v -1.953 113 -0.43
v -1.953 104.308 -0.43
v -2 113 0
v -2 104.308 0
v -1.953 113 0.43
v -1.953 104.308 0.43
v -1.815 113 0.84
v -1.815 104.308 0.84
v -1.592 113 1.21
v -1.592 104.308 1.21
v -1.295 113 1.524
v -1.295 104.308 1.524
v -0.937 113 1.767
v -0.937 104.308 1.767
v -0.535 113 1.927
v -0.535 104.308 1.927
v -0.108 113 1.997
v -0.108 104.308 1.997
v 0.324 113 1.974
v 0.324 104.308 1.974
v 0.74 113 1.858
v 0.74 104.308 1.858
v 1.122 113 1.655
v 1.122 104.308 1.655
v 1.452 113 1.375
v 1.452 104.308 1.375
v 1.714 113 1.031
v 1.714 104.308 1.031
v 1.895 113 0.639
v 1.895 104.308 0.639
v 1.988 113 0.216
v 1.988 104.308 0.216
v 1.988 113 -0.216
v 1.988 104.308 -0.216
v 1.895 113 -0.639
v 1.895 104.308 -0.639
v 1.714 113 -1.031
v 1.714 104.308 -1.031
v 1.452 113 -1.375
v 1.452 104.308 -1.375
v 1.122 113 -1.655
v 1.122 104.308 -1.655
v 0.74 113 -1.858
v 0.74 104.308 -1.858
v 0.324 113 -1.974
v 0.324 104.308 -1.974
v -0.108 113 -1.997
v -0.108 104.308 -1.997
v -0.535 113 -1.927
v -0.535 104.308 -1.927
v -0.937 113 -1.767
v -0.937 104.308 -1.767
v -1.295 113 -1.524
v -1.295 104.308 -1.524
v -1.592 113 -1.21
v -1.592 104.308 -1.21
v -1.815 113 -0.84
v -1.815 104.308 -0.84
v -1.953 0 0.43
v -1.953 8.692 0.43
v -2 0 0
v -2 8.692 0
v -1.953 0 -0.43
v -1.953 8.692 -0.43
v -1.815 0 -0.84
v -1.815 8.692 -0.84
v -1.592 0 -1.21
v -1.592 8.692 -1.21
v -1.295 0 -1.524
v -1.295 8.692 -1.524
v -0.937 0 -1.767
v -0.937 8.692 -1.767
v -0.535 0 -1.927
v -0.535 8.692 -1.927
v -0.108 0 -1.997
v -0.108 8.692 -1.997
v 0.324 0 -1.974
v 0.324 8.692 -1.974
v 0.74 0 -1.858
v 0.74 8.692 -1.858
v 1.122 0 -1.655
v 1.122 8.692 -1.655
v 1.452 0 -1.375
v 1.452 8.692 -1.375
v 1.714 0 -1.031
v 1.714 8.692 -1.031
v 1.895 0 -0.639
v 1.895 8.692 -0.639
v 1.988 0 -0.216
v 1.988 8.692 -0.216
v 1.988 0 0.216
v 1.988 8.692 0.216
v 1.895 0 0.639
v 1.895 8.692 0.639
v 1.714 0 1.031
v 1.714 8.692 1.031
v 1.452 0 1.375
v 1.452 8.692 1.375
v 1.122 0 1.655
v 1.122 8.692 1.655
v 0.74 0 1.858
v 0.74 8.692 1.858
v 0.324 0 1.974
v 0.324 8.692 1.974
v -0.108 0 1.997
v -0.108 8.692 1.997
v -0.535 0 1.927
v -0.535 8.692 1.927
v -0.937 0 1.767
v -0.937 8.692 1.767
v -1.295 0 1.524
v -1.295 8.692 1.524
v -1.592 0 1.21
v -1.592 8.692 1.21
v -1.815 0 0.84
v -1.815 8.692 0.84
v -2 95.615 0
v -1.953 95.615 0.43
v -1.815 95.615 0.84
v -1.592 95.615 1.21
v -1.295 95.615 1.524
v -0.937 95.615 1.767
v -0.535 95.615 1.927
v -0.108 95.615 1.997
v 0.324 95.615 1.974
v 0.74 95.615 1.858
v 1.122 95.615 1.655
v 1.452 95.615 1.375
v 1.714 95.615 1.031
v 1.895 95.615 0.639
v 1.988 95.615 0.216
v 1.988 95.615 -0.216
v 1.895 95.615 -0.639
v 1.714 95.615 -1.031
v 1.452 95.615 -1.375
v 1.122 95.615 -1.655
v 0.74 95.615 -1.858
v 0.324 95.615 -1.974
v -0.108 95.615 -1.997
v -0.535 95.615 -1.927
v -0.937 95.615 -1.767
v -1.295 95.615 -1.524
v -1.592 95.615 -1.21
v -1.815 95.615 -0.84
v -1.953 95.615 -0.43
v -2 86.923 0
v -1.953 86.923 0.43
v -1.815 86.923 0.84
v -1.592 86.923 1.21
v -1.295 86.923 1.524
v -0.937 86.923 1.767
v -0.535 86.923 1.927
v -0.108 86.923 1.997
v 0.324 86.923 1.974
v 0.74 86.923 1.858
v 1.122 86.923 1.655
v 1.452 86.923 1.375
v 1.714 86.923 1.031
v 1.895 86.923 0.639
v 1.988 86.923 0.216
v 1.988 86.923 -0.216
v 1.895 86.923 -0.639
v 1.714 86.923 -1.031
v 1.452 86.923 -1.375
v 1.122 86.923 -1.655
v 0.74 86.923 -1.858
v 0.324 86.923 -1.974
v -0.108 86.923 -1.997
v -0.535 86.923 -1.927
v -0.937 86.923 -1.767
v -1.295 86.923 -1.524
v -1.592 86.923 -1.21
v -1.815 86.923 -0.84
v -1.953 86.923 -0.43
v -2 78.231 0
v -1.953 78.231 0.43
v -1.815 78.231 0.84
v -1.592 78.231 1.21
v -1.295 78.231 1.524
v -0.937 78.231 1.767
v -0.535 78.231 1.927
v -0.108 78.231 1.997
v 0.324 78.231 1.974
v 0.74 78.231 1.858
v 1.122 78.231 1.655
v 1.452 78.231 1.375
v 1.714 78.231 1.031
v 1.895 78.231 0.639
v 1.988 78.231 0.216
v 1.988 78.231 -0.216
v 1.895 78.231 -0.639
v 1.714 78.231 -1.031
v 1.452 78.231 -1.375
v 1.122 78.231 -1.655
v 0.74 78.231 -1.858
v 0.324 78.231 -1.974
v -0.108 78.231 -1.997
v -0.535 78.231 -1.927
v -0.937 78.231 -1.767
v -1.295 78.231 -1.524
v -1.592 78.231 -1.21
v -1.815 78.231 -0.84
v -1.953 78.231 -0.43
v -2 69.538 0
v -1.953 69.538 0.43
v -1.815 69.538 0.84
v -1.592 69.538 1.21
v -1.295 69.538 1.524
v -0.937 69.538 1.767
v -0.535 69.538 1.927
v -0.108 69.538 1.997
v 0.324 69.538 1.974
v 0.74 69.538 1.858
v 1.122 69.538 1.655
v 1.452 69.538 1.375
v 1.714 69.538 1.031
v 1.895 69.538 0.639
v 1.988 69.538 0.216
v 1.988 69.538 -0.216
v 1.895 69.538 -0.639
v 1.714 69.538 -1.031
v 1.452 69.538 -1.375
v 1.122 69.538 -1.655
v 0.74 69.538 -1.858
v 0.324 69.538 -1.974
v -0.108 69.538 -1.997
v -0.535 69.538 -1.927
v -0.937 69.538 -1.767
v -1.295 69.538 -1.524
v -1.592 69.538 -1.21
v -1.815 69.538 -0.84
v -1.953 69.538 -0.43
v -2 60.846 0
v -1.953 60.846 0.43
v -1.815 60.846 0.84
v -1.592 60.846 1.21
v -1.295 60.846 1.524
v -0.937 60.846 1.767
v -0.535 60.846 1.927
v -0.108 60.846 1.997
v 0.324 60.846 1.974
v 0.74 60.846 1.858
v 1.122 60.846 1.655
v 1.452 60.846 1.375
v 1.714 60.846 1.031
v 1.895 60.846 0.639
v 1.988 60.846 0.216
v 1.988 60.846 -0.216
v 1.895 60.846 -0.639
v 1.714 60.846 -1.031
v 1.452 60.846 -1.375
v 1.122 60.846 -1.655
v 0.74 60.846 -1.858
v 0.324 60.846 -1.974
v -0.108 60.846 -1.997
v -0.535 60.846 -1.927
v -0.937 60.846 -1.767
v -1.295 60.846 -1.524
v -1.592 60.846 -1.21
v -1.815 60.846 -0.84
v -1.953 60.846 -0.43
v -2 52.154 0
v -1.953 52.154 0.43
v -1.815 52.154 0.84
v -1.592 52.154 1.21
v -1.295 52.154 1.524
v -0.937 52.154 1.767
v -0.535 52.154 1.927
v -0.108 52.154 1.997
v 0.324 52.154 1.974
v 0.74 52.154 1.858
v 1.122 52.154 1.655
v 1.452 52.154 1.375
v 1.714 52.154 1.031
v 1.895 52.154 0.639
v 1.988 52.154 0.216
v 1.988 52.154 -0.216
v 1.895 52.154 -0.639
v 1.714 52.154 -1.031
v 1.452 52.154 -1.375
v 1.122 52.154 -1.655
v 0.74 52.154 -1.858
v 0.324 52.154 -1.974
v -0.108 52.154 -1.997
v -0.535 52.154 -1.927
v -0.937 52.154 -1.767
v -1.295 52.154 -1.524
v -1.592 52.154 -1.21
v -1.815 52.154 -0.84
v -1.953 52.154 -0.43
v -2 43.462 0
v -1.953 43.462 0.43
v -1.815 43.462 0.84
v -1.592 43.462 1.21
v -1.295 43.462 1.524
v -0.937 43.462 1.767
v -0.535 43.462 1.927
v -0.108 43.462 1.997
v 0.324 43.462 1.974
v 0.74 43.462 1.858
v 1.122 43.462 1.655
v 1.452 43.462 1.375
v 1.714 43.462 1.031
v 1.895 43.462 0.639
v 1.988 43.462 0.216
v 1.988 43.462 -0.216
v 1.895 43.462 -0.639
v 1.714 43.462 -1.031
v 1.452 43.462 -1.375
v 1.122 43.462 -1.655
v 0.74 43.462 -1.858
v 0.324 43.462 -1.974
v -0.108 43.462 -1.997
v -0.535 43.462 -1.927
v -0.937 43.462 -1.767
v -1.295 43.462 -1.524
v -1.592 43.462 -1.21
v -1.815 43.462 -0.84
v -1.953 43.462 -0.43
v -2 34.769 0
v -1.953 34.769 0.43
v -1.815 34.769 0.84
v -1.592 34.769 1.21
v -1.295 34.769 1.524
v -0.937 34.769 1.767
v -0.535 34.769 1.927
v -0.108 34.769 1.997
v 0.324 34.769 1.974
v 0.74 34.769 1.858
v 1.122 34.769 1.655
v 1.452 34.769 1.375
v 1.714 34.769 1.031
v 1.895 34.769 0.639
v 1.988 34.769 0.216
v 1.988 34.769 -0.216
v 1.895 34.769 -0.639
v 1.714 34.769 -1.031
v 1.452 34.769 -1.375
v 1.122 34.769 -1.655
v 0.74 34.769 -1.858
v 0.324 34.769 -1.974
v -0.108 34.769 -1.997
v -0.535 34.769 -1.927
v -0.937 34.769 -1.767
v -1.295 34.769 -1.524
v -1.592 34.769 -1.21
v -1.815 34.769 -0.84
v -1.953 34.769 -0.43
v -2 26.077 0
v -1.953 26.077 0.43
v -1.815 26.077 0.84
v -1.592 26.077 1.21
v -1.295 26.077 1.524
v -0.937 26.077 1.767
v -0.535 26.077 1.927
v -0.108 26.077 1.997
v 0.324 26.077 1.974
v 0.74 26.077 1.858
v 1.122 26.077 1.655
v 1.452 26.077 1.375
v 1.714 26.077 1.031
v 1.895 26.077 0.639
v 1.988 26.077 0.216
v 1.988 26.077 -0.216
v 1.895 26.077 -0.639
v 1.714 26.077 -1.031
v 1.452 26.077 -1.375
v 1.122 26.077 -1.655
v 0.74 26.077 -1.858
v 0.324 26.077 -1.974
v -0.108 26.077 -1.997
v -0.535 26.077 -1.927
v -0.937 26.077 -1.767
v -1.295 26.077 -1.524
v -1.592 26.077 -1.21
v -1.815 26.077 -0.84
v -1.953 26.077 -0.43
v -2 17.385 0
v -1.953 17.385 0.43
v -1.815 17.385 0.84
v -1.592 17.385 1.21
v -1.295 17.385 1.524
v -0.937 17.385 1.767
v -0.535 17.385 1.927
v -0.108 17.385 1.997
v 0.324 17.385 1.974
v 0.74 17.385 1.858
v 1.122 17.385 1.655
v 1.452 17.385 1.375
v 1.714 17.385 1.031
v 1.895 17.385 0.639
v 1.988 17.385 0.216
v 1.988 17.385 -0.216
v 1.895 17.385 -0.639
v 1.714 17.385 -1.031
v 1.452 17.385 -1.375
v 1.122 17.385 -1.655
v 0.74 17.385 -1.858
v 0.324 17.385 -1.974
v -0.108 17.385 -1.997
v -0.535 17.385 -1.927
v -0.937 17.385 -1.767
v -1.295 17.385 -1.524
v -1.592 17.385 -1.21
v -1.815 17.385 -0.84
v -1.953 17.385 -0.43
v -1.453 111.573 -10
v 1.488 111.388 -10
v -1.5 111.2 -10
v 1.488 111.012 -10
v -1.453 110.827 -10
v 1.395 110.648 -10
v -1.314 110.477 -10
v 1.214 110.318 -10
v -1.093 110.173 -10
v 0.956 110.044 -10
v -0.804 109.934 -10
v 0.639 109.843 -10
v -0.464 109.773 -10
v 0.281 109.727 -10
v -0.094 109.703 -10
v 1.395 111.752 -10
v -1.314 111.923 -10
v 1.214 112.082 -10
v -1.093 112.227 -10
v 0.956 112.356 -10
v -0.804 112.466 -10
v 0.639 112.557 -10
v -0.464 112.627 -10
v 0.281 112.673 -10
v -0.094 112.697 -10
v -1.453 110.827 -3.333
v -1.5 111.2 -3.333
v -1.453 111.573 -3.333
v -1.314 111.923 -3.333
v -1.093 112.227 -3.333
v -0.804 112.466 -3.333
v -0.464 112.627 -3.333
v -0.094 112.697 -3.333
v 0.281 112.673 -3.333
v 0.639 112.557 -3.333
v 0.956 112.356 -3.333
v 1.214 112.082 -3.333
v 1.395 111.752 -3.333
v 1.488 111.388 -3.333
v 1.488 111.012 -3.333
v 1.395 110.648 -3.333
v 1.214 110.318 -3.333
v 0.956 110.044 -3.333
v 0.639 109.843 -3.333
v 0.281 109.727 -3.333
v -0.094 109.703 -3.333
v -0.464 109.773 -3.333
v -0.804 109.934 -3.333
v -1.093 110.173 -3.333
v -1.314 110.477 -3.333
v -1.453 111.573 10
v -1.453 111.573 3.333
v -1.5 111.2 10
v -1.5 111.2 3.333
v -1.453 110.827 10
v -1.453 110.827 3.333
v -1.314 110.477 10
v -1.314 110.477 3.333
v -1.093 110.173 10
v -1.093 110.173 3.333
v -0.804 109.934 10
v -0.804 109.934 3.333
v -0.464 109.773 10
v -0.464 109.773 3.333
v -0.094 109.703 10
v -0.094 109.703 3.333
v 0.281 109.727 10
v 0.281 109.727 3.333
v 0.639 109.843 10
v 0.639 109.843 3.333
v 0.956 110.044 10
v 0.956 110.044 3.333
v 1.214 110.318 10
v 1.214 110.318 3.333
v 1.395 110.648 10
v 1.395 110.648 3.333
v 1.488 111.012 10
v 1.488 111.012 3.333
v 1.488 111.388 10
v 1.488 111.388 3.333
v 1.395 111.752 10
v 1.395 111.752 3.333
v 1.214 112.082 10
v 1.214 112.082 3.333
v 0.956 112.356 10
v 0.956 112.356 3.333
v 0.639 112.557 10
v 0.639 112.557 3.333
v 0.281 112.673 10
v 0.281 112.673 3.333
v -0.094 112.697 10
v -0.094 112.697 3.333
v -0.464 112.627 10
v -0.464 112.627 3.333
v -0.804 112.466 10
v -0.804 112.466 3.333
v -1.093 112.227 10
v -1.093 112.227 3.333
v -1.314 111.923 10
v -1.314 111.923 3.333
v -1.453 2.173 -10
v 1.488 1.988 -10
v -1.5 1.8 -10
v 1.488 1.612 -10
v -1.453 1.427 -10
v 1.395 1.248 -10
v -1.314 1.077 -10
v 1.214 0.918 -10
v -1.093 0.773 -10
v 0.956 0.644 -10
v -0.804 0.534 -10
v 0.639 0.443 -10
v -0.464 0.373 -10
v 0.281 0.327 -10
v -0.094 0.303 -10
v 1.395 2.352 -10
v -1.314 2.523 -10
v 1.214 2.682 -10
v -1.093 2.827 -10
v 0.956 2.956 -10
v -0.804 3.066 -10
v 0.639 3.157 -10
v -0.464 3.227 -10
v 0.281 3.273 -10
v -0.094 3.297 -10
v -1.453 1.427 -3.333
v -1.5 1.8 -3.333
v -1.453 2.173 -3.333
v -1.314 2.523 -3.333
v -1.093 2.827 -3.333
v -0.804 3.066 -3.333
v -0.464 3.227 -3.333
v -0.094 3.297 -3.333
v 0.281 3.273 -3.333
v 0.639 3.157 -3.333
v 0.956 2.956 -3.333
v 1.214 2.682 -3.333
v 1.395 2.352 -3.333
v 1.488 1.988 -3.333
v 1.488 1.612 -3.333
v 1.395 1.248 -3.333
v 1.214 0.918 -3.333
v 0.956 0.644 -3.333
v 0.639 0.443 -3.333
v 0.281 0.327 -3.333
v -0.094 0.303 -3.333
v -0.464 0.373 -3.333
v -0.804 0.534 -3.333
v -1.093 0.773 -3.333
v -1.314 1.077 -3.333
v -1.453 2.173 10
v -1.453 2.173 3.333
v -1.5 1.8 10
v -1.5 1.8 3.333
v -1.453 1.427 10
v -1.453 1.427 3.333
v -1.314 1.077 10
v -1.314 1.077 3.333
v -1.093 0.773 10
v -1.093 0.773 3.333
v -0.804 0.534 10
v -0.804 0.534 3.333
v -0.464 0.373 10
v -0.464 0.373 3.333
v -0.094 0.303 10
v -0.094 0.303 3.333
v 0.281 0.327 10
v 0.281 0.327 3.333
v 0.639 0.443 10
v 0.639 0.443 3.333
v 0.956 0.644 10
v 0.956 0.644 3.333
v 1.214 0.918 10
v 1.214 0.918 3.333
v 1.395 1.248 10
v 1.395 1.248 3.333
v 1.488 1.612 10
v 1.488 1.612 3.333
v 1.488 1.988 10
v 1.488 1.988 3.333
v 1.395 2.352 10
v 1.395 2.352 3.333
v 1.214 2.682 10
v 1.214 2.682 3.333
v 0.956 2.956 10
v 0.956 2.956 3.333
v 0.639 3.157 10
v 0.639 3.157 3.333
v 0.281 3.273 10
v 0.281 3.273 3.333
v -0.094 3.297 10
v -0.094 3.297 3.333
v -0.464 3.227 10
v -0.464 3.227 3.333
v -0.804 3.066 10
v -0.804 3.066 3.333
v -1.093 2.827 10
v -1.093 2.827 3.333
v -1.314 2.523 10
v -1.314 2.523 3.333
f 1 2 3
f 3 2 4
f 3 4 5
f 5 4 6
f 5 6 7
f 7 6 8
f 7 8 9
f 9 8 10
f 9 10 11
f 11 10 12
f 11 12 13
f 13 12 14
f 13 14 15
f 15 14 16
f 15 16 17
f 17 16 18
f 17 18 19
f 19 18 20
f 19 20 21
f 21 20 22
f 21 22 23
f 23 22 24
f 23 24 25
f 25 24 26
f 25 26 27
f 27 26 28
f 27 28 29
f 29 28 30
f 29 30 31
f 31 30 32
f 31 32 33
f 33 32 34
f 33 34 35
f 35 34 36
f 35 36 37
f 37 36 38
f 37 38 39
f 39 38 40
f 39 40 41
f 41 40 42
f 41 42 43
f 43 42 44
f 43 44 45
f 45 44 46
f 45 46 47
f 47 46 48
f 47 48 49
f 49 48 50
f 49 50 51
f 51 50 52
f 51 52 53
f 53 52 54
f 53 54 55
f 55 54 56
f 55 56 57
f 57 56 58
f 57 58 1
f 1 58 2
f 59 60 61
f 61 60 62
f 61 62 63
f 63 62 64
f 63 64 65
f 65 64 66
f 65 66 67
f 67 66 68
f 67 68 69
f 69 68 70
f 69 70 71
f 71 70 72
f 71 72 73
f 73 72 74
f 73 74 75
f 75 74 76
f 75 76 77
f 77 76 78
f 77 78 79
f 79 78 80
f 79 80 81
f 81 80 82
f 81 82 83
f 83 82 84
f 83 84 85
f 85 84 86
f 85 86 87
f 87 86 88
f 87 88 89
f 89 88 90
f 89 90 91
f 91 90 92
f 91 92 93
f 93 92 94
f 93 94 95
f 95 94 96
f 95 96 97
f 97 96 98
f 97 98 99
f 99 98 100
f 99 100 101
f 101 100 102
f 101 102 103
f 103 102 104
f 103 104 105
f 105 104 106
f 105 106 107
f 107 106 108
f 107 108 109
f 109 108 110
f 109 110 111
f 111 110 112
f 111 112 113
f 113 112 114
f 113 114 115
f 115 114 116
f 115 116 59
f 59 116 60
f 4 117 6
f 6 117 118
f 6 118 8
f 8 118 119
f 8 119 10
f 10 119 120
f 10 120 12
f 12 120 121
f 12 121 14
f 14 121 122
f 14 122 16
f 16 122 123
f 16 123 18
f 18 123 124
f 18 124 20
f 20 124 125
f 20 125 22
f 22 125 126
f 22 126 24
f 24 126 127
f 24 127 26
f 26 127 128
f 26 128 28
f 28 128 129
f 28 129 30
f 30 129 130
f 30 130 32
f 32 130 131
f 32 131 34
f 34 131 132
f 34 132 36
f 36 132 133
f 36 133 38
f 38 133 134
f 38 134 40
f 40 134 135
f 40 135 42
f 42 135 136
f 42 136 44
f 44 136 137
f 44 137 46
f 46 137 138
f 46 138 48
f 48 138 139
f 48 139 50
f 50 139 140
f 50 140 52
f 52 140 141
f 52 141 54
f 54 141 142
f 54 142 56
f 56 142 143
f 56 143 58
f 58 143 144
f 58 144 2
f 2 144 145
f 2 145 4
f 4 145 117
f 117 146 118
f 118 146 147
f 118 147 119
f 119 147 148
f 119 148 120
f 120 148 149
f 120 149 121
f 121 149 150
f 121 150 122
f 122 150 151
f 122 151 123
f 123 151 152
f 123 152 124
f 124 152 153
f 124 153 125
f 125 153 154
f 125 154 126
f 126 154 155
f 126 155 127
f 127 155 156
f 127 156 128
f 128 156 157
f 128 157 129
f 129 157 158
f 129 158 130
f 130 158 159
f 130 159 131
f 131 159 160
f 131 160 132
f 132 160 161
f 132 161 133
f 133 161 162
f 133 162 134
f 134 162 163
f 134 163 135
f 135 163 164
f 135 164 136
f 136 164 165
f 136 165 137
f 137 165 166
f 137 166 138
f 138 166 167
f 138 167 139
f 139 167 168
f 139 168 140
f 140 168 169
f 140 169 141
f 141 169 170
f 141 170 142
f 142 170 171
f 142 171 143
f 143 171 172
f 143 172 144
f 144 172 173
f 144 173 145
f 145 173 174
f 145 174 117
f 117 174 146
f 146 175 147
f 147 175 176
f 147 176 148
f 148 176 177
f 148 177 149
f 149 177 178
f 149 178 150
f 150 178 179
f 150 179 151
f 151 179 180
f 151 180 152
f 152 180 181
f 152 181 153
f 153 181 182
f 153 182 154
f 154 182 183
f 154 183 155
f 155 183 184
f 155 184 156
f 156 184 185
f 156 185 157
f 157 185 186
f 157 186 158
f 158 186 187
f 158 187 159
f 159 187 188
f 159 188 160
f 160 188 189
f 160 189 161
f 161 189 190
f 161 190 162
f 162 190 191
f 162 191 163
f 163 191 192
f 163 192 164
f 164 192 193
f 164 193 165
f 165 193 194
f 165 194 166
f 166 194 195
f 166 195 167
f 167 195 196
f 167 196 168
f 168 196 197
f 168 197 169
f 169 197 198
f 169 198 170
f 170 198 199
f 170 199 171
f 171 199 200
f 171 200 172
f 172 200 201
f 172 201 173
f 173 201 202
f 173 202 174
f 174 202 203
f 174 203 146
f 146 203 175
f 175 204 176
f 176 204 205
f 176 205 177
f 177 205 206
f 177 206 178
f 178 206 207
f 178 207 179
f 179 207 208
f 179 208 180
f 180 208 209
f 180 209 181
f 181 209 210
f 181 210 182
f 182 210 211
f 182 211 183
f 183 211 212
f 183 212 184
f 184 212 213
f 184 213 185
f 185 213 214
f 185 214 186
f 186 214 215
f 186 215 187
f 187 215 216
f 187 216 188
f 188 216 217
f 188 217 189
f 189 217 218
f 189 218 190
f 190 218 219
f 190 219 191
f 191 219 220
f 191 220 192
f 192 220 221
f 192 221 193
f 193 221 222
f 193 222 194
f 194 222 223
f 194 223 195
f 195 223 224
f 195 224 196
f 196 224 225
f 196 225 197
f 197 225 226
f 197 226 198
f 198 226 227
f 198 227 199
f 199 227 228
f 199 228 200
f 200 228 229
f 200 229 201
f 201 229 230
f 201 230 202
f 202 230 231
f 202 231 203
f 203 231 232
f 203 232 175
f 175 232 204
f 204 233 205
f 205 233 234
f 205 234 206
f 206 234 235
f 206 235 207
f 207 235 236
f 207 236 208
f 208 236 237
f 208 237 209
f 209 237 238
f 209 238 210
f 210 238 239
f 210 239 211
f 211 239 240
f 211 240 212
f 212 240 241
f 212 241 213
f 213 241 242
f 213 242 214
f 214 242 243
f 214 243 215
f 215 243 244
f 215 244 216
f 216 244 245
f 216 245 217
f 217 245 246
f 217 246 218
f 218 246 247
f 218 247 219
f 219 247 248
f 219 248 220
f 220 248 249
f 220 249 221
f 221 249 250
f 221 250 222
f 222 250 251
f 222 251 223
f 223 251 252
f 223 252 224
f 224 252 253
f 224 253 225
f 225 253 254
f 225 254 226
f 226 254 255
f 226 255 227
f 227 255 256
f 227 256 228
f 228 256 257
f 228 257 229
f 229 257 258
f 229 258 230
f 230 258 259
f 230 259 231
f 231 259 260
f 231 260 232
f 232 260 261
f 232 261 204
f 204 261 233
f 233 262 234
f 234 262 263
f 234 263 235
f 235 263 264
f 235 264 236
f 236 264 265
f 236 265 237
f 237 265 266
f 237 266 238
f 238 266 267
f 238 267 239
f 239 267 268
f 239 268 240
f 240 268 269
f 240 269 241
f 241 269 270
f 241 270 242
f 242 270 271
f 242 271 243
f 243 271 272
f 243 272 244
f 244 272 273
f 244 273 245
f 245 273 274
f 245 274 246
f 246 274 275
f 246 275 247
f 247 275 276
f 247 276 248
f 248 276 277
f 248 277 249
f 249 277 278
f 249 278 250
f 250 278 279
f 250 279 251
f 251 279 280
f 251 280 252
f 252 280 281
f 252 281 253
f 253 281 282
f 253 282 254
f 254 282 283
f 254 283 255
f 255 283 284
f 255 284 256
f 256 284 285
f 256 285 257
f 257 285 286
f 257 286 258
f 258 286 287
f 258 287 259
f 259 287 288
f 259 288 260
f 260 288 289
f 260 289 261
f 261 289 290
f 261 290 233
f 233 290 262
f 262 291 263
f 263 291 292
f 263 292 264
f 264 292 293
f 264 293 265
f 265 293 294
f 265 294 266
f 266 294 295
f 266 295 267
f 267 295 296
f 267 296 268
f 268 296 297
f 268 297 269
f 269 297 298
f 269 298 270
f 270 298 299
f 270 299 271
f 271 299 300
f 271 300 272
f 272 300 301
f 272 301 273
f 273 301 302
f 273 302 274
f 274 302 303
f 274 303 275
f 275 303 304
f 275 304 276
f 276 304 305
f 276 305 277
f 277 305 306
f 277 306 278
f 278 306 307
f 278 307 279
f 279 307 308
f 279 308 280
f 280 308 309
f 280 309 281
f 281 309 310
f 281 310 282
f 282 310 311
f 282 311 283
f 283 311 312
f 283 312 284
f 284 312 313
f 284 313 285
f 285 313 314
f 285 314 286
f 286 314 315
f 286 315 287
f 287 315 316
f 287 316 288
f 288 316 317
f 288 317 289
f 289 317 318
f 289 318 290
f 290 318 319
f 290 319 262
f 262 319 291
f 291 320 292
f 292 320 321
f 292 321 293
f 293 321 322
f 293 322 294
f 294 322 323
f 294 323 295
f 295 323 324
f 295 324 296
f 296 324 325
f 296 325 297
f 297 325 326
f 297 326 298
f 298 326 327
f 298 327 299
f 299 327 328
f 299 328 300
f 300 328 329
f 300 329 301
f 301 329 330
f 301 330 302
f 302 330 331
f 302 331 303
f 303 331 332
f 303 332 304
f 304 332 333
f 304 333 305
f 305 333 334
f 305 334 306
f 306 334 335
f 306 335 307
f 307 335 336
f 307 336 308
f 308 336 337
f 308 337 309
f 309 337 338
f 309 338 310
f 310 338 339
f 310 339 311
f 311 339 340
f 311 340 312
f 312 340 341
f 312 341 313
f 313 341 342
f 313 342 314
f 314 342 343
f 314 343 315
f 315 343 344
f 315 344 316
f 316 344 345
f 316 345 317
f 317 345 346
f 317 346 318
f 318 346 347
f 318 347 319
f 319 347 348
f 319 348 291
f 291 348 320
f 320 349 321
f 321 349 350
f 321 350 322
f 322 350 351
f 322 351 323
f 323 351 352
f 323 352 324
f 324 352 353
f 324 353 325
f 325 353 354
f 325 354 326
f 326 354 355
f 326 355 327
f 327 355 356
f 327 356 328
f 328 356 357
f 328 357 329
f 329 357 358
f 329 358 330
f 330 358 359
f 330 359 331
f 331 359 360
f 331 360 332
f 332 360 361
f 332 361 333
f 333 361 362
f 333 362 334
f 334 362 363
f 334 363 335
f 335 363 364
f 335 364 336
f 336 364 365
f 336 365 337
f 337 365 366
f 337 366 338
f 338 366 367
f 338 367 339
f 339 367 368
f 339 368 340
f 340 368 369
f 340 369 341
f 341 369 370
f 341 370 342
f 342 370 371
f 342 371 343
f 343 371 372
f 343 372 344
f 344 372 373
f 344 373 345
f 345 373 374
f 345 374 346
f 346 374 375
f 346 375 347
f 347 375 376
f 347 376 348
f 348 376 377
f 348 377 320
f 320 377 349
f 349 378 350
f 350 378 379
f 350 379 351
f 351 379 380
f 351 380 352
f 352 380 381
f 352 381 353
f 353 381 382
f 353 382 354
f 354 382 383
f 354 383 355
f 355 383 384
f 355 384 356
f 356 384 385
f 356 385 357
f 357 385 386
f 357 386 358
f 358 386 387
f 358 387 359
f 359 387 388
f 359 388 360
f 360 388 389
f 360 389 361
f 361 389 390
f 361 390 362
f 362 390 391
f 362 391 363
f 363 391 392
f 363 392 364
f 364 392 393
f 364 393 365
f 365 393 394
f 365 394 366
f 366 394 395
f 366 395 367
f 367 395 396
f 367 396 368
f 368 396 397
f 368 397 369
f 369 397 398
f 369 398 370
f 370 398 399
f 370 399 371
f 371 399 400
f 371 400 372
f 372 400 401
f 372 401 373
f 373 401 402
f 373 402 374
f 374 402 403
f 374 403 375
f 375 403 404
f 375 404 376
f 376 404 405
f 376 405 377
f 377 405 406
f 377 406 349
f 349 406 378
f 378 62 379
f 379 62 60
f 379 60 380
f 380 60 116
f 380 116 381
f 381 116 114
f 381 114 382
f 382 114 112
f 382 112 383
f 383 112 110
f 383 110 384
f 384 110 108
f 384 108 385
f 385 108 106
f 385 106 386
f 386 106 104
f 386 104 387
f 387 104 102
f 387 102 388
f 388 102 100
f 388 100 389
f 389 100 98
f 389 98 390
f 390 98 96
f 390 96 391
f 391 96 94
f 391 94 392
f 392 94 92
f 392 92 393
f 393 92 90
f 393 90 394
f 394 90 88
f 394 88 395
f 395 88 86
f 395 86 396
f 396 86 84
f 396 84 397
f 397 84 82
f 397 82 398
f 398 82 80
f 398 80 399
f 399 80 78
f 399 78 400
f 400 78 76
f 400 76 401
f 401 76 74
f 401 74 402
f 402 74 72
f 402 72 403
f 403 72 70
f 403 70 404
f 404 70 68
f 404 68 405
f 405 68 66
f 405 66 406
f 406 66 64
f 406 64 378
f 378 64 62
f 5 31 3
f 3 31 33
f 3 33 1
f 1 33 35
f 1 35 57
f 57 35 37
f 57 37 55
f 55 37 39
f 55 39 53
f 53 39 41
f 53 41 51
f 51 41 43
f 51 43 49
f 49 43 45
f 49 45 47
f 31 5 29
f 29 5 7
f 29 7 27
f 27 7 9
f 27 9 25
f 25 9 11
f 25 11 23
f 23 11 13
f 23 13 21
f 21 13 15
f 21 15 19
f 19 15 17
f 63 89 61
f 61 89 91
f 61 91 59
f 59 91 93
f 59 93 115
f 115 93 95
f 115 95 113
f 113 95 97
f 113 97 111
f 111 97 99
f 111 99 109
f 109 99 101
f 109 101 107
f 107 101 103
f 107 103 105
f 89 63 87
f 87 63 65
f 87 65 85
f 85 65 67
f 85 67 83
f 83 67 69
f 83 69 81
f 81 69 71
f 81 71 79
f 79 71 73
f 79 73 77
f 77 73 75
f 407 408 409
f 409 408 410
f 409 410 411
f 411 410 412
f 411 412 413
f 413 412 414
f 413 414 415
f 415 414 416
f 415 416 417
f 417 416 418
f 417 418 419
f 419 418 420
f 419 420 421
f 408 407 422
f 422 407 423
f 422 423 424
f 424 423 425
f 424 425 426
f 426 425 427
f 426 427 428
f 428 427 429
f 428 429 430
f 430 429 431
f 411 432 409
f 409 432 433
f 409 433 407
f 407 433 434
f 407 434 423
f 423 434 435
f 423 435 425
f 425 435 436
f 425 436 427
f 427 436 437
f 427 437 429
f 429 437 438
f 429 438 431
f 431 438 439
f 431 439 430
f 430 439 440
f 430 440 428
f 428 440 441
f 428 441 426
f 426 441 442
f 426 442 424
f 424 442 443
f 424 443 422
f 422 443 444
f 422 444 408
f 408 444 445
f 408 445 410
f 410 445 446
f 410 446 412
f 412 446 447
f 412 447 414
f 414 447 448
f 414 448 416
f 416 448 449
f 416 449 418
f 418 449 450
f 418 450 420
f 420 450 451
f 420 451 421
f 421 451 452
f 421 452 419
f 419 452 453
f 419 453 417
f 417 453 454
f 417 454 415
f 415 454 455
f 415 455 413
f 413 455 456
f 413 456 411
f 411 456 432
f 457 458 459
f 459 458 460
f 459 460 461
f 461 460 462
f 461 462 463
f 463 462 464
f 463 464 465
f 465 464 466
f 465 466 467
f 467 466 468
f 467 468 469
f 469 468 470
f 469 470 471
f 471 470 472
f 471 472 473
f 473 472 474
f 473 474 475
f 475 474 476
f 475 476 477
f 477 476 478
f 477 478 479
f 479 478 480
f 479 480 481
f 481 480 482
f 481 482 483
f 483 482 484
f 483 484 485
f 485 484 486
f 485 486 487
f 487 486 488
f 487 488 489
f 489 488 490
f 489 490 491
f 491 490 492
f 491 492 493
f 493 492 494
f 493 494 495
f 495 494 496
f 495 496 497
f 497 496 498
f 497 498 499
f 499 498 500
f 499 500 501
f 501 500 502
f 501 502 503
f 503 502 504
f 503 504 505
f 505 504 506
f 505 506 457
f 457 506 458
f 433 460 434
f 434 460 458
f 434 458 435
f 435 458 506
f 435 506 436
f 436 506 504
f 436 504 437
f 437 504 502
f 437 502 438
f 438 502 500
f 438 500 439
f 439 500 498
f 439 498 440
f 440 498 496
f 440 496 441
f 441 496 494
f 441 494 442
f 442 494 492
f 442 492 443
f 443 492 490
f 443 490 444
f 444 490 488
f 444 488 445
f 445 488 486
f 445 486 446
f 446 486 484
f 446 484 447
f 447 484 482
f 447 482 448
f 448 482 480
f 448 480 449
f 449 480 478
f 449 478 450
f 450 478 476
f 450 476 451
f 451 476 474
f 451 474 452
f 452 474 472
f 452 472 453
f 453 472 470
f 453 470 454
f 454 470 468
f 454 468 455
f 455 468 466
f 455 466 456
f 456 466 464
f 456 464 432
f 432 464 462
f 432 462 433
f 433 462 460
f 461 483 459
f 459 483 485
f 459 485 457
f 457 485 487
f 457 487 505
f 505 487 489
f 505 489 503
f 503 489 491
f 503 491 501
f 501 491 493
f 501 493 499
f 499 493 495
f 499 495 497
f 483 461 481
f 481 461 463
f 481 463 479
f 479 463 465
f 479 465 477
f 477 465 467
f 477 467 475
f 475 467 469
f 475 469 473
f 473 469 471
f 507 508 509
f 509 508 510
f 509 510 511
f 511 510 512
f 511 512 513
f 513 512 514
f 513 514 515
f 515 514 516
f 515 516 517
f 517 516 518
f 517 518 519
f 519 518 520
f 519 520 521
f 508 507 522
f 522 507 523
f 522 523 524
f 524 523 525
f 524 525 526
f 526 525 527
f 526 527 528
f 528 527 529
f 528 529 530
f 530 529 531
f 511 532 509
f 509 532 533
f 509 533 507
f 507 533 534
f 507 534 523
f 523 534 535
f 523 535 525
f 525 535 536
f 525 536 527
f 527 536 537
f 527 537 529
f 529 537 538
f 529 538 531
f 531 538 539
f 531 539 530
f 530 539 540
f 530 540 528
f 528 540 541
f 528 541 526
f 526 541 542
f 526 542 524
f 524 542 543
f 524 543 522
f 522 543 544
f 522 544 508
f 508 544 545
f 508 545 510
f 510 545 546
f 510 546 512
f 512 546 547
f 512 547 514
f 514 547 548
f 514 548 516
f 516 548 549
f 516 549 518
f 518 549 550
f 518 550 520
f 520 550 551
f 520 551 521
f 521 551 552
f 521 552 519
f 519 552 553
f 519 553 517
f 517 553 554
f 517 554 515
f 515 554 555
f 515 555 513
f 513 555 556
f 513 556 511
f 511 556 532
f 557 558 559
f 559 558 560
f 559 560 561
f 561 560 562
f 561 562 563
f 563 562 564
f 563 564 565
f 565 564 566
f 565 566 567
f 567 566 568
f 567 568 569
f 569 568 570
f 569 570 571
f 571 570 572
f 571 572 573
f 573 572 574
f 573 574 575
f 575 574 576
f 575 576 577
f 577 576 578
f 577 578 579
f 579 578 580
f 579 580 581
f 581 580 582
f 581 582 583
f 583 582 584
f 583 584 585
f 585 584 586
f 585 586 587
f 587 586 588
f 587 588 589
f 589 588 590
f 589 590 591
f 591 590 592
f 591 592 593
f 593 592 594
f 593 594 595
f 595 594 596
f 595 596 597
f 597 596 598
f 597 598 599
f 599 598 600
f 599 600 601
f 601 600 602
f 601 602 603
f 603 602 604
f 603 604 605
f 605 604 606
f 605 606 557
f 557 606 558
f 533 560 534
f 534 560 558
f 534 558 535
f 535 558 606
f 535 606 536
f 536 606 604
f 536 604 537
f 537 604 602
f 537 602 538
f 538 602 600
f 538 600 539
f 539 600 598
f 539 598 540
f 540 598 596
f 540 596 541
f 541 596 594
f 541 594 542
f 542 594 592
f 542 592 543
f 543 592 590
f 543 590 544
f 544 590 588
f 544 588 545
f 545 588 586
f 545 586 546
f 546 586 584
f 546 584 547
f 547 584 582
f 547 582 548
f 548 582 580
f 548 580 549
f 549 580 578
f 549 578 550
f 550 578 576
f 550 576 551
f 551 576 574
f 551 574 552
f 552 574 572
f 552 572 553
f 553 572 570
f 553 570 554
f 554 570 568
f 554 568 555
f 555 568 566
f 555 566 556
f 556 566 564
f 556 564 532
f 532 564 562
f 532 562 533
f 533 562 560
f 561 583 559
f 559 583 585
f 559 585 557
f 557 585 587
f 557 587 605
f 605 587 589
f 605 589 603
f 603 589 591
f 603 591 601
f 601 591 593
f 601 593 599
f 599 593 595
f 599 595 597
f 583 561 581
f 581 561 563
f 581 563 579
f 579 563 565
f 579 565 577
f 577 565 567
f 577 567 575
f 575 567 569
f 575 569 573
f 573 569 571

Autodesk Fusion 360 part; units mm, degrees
sketch "Sketch1" plane through (0, 0, 0) normal (0, 1, 0) x (1, 0, 0)
  circle A0 centre (0, 0) radius 2
  dimension "d5" = 4
extrude "Extrude1" add sketch "Sketch1" along normal blind 113 makes body 1
sketch "Sketch2" plane through (0, 0, 0) normal (0, 0, 1) x (1, 0, 0)
  circle A0 centre (0, 1.8) radius 1.5
  circle A1 centre (0, 111.2) radius 1.5
  line L0 (2, 113) -> (-2, 113)
  dimension "d9" = 3
  dimension "d10" = 3
  dimension "d15" = 1.8
  dimension "d16" = 1.8
extrude "Extrude2" add sketch "Sketch2" along normal mid plane 20 separate body contours A1 makes body 2
extrude "Extrude3" add sketch "Sketch2" along normal mid plane 20 separate body contours A0 makes body 3
equation "length = 113 mm"
equation "radius = 2 mm"
equation "cup_little_bone_radius = 1.5 mm"
equation "cup_little_bone_length = 20 mm"
equation "d5 = radius * 2"
equation "edge_cup_little_bone_distance = 1.8 mm"
equation "d7 = length"
equation "d9 = cup_little_bone_radius * 2"
equation "d10 = cup_little_bone_radius * 2"
equation "d11 = cup_little_bone_length / 2"
equation "d13 = cup_little_bone_length / 2"
equation "d15 = edge_cup_little_bone_distance"
equation "d16 = edge_cup_little_bone_distance"
